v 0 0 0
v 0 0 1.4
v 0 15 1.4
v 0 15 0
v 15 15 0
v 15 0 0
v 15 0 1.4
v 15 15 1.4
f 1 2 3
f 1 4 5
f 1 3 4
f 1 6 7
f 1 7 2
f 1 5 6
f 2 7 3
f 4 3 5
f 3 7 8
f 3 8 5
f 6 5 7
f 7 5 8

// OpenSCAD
/* Warning, this is a very basic generator with a lot of approximation 
input data : [LFBGA, AVB, 15x15x1.4mm, 324, , A, C04-21130A]
generated by com.zoubworld.electronics.cad.model3d.Basic
Date : Sun Feb 15 10:50:49 CET 2026
*/

//body
color("black")
translate([0,0,0])
cube([15.0,15.0,1.4], center=false);
